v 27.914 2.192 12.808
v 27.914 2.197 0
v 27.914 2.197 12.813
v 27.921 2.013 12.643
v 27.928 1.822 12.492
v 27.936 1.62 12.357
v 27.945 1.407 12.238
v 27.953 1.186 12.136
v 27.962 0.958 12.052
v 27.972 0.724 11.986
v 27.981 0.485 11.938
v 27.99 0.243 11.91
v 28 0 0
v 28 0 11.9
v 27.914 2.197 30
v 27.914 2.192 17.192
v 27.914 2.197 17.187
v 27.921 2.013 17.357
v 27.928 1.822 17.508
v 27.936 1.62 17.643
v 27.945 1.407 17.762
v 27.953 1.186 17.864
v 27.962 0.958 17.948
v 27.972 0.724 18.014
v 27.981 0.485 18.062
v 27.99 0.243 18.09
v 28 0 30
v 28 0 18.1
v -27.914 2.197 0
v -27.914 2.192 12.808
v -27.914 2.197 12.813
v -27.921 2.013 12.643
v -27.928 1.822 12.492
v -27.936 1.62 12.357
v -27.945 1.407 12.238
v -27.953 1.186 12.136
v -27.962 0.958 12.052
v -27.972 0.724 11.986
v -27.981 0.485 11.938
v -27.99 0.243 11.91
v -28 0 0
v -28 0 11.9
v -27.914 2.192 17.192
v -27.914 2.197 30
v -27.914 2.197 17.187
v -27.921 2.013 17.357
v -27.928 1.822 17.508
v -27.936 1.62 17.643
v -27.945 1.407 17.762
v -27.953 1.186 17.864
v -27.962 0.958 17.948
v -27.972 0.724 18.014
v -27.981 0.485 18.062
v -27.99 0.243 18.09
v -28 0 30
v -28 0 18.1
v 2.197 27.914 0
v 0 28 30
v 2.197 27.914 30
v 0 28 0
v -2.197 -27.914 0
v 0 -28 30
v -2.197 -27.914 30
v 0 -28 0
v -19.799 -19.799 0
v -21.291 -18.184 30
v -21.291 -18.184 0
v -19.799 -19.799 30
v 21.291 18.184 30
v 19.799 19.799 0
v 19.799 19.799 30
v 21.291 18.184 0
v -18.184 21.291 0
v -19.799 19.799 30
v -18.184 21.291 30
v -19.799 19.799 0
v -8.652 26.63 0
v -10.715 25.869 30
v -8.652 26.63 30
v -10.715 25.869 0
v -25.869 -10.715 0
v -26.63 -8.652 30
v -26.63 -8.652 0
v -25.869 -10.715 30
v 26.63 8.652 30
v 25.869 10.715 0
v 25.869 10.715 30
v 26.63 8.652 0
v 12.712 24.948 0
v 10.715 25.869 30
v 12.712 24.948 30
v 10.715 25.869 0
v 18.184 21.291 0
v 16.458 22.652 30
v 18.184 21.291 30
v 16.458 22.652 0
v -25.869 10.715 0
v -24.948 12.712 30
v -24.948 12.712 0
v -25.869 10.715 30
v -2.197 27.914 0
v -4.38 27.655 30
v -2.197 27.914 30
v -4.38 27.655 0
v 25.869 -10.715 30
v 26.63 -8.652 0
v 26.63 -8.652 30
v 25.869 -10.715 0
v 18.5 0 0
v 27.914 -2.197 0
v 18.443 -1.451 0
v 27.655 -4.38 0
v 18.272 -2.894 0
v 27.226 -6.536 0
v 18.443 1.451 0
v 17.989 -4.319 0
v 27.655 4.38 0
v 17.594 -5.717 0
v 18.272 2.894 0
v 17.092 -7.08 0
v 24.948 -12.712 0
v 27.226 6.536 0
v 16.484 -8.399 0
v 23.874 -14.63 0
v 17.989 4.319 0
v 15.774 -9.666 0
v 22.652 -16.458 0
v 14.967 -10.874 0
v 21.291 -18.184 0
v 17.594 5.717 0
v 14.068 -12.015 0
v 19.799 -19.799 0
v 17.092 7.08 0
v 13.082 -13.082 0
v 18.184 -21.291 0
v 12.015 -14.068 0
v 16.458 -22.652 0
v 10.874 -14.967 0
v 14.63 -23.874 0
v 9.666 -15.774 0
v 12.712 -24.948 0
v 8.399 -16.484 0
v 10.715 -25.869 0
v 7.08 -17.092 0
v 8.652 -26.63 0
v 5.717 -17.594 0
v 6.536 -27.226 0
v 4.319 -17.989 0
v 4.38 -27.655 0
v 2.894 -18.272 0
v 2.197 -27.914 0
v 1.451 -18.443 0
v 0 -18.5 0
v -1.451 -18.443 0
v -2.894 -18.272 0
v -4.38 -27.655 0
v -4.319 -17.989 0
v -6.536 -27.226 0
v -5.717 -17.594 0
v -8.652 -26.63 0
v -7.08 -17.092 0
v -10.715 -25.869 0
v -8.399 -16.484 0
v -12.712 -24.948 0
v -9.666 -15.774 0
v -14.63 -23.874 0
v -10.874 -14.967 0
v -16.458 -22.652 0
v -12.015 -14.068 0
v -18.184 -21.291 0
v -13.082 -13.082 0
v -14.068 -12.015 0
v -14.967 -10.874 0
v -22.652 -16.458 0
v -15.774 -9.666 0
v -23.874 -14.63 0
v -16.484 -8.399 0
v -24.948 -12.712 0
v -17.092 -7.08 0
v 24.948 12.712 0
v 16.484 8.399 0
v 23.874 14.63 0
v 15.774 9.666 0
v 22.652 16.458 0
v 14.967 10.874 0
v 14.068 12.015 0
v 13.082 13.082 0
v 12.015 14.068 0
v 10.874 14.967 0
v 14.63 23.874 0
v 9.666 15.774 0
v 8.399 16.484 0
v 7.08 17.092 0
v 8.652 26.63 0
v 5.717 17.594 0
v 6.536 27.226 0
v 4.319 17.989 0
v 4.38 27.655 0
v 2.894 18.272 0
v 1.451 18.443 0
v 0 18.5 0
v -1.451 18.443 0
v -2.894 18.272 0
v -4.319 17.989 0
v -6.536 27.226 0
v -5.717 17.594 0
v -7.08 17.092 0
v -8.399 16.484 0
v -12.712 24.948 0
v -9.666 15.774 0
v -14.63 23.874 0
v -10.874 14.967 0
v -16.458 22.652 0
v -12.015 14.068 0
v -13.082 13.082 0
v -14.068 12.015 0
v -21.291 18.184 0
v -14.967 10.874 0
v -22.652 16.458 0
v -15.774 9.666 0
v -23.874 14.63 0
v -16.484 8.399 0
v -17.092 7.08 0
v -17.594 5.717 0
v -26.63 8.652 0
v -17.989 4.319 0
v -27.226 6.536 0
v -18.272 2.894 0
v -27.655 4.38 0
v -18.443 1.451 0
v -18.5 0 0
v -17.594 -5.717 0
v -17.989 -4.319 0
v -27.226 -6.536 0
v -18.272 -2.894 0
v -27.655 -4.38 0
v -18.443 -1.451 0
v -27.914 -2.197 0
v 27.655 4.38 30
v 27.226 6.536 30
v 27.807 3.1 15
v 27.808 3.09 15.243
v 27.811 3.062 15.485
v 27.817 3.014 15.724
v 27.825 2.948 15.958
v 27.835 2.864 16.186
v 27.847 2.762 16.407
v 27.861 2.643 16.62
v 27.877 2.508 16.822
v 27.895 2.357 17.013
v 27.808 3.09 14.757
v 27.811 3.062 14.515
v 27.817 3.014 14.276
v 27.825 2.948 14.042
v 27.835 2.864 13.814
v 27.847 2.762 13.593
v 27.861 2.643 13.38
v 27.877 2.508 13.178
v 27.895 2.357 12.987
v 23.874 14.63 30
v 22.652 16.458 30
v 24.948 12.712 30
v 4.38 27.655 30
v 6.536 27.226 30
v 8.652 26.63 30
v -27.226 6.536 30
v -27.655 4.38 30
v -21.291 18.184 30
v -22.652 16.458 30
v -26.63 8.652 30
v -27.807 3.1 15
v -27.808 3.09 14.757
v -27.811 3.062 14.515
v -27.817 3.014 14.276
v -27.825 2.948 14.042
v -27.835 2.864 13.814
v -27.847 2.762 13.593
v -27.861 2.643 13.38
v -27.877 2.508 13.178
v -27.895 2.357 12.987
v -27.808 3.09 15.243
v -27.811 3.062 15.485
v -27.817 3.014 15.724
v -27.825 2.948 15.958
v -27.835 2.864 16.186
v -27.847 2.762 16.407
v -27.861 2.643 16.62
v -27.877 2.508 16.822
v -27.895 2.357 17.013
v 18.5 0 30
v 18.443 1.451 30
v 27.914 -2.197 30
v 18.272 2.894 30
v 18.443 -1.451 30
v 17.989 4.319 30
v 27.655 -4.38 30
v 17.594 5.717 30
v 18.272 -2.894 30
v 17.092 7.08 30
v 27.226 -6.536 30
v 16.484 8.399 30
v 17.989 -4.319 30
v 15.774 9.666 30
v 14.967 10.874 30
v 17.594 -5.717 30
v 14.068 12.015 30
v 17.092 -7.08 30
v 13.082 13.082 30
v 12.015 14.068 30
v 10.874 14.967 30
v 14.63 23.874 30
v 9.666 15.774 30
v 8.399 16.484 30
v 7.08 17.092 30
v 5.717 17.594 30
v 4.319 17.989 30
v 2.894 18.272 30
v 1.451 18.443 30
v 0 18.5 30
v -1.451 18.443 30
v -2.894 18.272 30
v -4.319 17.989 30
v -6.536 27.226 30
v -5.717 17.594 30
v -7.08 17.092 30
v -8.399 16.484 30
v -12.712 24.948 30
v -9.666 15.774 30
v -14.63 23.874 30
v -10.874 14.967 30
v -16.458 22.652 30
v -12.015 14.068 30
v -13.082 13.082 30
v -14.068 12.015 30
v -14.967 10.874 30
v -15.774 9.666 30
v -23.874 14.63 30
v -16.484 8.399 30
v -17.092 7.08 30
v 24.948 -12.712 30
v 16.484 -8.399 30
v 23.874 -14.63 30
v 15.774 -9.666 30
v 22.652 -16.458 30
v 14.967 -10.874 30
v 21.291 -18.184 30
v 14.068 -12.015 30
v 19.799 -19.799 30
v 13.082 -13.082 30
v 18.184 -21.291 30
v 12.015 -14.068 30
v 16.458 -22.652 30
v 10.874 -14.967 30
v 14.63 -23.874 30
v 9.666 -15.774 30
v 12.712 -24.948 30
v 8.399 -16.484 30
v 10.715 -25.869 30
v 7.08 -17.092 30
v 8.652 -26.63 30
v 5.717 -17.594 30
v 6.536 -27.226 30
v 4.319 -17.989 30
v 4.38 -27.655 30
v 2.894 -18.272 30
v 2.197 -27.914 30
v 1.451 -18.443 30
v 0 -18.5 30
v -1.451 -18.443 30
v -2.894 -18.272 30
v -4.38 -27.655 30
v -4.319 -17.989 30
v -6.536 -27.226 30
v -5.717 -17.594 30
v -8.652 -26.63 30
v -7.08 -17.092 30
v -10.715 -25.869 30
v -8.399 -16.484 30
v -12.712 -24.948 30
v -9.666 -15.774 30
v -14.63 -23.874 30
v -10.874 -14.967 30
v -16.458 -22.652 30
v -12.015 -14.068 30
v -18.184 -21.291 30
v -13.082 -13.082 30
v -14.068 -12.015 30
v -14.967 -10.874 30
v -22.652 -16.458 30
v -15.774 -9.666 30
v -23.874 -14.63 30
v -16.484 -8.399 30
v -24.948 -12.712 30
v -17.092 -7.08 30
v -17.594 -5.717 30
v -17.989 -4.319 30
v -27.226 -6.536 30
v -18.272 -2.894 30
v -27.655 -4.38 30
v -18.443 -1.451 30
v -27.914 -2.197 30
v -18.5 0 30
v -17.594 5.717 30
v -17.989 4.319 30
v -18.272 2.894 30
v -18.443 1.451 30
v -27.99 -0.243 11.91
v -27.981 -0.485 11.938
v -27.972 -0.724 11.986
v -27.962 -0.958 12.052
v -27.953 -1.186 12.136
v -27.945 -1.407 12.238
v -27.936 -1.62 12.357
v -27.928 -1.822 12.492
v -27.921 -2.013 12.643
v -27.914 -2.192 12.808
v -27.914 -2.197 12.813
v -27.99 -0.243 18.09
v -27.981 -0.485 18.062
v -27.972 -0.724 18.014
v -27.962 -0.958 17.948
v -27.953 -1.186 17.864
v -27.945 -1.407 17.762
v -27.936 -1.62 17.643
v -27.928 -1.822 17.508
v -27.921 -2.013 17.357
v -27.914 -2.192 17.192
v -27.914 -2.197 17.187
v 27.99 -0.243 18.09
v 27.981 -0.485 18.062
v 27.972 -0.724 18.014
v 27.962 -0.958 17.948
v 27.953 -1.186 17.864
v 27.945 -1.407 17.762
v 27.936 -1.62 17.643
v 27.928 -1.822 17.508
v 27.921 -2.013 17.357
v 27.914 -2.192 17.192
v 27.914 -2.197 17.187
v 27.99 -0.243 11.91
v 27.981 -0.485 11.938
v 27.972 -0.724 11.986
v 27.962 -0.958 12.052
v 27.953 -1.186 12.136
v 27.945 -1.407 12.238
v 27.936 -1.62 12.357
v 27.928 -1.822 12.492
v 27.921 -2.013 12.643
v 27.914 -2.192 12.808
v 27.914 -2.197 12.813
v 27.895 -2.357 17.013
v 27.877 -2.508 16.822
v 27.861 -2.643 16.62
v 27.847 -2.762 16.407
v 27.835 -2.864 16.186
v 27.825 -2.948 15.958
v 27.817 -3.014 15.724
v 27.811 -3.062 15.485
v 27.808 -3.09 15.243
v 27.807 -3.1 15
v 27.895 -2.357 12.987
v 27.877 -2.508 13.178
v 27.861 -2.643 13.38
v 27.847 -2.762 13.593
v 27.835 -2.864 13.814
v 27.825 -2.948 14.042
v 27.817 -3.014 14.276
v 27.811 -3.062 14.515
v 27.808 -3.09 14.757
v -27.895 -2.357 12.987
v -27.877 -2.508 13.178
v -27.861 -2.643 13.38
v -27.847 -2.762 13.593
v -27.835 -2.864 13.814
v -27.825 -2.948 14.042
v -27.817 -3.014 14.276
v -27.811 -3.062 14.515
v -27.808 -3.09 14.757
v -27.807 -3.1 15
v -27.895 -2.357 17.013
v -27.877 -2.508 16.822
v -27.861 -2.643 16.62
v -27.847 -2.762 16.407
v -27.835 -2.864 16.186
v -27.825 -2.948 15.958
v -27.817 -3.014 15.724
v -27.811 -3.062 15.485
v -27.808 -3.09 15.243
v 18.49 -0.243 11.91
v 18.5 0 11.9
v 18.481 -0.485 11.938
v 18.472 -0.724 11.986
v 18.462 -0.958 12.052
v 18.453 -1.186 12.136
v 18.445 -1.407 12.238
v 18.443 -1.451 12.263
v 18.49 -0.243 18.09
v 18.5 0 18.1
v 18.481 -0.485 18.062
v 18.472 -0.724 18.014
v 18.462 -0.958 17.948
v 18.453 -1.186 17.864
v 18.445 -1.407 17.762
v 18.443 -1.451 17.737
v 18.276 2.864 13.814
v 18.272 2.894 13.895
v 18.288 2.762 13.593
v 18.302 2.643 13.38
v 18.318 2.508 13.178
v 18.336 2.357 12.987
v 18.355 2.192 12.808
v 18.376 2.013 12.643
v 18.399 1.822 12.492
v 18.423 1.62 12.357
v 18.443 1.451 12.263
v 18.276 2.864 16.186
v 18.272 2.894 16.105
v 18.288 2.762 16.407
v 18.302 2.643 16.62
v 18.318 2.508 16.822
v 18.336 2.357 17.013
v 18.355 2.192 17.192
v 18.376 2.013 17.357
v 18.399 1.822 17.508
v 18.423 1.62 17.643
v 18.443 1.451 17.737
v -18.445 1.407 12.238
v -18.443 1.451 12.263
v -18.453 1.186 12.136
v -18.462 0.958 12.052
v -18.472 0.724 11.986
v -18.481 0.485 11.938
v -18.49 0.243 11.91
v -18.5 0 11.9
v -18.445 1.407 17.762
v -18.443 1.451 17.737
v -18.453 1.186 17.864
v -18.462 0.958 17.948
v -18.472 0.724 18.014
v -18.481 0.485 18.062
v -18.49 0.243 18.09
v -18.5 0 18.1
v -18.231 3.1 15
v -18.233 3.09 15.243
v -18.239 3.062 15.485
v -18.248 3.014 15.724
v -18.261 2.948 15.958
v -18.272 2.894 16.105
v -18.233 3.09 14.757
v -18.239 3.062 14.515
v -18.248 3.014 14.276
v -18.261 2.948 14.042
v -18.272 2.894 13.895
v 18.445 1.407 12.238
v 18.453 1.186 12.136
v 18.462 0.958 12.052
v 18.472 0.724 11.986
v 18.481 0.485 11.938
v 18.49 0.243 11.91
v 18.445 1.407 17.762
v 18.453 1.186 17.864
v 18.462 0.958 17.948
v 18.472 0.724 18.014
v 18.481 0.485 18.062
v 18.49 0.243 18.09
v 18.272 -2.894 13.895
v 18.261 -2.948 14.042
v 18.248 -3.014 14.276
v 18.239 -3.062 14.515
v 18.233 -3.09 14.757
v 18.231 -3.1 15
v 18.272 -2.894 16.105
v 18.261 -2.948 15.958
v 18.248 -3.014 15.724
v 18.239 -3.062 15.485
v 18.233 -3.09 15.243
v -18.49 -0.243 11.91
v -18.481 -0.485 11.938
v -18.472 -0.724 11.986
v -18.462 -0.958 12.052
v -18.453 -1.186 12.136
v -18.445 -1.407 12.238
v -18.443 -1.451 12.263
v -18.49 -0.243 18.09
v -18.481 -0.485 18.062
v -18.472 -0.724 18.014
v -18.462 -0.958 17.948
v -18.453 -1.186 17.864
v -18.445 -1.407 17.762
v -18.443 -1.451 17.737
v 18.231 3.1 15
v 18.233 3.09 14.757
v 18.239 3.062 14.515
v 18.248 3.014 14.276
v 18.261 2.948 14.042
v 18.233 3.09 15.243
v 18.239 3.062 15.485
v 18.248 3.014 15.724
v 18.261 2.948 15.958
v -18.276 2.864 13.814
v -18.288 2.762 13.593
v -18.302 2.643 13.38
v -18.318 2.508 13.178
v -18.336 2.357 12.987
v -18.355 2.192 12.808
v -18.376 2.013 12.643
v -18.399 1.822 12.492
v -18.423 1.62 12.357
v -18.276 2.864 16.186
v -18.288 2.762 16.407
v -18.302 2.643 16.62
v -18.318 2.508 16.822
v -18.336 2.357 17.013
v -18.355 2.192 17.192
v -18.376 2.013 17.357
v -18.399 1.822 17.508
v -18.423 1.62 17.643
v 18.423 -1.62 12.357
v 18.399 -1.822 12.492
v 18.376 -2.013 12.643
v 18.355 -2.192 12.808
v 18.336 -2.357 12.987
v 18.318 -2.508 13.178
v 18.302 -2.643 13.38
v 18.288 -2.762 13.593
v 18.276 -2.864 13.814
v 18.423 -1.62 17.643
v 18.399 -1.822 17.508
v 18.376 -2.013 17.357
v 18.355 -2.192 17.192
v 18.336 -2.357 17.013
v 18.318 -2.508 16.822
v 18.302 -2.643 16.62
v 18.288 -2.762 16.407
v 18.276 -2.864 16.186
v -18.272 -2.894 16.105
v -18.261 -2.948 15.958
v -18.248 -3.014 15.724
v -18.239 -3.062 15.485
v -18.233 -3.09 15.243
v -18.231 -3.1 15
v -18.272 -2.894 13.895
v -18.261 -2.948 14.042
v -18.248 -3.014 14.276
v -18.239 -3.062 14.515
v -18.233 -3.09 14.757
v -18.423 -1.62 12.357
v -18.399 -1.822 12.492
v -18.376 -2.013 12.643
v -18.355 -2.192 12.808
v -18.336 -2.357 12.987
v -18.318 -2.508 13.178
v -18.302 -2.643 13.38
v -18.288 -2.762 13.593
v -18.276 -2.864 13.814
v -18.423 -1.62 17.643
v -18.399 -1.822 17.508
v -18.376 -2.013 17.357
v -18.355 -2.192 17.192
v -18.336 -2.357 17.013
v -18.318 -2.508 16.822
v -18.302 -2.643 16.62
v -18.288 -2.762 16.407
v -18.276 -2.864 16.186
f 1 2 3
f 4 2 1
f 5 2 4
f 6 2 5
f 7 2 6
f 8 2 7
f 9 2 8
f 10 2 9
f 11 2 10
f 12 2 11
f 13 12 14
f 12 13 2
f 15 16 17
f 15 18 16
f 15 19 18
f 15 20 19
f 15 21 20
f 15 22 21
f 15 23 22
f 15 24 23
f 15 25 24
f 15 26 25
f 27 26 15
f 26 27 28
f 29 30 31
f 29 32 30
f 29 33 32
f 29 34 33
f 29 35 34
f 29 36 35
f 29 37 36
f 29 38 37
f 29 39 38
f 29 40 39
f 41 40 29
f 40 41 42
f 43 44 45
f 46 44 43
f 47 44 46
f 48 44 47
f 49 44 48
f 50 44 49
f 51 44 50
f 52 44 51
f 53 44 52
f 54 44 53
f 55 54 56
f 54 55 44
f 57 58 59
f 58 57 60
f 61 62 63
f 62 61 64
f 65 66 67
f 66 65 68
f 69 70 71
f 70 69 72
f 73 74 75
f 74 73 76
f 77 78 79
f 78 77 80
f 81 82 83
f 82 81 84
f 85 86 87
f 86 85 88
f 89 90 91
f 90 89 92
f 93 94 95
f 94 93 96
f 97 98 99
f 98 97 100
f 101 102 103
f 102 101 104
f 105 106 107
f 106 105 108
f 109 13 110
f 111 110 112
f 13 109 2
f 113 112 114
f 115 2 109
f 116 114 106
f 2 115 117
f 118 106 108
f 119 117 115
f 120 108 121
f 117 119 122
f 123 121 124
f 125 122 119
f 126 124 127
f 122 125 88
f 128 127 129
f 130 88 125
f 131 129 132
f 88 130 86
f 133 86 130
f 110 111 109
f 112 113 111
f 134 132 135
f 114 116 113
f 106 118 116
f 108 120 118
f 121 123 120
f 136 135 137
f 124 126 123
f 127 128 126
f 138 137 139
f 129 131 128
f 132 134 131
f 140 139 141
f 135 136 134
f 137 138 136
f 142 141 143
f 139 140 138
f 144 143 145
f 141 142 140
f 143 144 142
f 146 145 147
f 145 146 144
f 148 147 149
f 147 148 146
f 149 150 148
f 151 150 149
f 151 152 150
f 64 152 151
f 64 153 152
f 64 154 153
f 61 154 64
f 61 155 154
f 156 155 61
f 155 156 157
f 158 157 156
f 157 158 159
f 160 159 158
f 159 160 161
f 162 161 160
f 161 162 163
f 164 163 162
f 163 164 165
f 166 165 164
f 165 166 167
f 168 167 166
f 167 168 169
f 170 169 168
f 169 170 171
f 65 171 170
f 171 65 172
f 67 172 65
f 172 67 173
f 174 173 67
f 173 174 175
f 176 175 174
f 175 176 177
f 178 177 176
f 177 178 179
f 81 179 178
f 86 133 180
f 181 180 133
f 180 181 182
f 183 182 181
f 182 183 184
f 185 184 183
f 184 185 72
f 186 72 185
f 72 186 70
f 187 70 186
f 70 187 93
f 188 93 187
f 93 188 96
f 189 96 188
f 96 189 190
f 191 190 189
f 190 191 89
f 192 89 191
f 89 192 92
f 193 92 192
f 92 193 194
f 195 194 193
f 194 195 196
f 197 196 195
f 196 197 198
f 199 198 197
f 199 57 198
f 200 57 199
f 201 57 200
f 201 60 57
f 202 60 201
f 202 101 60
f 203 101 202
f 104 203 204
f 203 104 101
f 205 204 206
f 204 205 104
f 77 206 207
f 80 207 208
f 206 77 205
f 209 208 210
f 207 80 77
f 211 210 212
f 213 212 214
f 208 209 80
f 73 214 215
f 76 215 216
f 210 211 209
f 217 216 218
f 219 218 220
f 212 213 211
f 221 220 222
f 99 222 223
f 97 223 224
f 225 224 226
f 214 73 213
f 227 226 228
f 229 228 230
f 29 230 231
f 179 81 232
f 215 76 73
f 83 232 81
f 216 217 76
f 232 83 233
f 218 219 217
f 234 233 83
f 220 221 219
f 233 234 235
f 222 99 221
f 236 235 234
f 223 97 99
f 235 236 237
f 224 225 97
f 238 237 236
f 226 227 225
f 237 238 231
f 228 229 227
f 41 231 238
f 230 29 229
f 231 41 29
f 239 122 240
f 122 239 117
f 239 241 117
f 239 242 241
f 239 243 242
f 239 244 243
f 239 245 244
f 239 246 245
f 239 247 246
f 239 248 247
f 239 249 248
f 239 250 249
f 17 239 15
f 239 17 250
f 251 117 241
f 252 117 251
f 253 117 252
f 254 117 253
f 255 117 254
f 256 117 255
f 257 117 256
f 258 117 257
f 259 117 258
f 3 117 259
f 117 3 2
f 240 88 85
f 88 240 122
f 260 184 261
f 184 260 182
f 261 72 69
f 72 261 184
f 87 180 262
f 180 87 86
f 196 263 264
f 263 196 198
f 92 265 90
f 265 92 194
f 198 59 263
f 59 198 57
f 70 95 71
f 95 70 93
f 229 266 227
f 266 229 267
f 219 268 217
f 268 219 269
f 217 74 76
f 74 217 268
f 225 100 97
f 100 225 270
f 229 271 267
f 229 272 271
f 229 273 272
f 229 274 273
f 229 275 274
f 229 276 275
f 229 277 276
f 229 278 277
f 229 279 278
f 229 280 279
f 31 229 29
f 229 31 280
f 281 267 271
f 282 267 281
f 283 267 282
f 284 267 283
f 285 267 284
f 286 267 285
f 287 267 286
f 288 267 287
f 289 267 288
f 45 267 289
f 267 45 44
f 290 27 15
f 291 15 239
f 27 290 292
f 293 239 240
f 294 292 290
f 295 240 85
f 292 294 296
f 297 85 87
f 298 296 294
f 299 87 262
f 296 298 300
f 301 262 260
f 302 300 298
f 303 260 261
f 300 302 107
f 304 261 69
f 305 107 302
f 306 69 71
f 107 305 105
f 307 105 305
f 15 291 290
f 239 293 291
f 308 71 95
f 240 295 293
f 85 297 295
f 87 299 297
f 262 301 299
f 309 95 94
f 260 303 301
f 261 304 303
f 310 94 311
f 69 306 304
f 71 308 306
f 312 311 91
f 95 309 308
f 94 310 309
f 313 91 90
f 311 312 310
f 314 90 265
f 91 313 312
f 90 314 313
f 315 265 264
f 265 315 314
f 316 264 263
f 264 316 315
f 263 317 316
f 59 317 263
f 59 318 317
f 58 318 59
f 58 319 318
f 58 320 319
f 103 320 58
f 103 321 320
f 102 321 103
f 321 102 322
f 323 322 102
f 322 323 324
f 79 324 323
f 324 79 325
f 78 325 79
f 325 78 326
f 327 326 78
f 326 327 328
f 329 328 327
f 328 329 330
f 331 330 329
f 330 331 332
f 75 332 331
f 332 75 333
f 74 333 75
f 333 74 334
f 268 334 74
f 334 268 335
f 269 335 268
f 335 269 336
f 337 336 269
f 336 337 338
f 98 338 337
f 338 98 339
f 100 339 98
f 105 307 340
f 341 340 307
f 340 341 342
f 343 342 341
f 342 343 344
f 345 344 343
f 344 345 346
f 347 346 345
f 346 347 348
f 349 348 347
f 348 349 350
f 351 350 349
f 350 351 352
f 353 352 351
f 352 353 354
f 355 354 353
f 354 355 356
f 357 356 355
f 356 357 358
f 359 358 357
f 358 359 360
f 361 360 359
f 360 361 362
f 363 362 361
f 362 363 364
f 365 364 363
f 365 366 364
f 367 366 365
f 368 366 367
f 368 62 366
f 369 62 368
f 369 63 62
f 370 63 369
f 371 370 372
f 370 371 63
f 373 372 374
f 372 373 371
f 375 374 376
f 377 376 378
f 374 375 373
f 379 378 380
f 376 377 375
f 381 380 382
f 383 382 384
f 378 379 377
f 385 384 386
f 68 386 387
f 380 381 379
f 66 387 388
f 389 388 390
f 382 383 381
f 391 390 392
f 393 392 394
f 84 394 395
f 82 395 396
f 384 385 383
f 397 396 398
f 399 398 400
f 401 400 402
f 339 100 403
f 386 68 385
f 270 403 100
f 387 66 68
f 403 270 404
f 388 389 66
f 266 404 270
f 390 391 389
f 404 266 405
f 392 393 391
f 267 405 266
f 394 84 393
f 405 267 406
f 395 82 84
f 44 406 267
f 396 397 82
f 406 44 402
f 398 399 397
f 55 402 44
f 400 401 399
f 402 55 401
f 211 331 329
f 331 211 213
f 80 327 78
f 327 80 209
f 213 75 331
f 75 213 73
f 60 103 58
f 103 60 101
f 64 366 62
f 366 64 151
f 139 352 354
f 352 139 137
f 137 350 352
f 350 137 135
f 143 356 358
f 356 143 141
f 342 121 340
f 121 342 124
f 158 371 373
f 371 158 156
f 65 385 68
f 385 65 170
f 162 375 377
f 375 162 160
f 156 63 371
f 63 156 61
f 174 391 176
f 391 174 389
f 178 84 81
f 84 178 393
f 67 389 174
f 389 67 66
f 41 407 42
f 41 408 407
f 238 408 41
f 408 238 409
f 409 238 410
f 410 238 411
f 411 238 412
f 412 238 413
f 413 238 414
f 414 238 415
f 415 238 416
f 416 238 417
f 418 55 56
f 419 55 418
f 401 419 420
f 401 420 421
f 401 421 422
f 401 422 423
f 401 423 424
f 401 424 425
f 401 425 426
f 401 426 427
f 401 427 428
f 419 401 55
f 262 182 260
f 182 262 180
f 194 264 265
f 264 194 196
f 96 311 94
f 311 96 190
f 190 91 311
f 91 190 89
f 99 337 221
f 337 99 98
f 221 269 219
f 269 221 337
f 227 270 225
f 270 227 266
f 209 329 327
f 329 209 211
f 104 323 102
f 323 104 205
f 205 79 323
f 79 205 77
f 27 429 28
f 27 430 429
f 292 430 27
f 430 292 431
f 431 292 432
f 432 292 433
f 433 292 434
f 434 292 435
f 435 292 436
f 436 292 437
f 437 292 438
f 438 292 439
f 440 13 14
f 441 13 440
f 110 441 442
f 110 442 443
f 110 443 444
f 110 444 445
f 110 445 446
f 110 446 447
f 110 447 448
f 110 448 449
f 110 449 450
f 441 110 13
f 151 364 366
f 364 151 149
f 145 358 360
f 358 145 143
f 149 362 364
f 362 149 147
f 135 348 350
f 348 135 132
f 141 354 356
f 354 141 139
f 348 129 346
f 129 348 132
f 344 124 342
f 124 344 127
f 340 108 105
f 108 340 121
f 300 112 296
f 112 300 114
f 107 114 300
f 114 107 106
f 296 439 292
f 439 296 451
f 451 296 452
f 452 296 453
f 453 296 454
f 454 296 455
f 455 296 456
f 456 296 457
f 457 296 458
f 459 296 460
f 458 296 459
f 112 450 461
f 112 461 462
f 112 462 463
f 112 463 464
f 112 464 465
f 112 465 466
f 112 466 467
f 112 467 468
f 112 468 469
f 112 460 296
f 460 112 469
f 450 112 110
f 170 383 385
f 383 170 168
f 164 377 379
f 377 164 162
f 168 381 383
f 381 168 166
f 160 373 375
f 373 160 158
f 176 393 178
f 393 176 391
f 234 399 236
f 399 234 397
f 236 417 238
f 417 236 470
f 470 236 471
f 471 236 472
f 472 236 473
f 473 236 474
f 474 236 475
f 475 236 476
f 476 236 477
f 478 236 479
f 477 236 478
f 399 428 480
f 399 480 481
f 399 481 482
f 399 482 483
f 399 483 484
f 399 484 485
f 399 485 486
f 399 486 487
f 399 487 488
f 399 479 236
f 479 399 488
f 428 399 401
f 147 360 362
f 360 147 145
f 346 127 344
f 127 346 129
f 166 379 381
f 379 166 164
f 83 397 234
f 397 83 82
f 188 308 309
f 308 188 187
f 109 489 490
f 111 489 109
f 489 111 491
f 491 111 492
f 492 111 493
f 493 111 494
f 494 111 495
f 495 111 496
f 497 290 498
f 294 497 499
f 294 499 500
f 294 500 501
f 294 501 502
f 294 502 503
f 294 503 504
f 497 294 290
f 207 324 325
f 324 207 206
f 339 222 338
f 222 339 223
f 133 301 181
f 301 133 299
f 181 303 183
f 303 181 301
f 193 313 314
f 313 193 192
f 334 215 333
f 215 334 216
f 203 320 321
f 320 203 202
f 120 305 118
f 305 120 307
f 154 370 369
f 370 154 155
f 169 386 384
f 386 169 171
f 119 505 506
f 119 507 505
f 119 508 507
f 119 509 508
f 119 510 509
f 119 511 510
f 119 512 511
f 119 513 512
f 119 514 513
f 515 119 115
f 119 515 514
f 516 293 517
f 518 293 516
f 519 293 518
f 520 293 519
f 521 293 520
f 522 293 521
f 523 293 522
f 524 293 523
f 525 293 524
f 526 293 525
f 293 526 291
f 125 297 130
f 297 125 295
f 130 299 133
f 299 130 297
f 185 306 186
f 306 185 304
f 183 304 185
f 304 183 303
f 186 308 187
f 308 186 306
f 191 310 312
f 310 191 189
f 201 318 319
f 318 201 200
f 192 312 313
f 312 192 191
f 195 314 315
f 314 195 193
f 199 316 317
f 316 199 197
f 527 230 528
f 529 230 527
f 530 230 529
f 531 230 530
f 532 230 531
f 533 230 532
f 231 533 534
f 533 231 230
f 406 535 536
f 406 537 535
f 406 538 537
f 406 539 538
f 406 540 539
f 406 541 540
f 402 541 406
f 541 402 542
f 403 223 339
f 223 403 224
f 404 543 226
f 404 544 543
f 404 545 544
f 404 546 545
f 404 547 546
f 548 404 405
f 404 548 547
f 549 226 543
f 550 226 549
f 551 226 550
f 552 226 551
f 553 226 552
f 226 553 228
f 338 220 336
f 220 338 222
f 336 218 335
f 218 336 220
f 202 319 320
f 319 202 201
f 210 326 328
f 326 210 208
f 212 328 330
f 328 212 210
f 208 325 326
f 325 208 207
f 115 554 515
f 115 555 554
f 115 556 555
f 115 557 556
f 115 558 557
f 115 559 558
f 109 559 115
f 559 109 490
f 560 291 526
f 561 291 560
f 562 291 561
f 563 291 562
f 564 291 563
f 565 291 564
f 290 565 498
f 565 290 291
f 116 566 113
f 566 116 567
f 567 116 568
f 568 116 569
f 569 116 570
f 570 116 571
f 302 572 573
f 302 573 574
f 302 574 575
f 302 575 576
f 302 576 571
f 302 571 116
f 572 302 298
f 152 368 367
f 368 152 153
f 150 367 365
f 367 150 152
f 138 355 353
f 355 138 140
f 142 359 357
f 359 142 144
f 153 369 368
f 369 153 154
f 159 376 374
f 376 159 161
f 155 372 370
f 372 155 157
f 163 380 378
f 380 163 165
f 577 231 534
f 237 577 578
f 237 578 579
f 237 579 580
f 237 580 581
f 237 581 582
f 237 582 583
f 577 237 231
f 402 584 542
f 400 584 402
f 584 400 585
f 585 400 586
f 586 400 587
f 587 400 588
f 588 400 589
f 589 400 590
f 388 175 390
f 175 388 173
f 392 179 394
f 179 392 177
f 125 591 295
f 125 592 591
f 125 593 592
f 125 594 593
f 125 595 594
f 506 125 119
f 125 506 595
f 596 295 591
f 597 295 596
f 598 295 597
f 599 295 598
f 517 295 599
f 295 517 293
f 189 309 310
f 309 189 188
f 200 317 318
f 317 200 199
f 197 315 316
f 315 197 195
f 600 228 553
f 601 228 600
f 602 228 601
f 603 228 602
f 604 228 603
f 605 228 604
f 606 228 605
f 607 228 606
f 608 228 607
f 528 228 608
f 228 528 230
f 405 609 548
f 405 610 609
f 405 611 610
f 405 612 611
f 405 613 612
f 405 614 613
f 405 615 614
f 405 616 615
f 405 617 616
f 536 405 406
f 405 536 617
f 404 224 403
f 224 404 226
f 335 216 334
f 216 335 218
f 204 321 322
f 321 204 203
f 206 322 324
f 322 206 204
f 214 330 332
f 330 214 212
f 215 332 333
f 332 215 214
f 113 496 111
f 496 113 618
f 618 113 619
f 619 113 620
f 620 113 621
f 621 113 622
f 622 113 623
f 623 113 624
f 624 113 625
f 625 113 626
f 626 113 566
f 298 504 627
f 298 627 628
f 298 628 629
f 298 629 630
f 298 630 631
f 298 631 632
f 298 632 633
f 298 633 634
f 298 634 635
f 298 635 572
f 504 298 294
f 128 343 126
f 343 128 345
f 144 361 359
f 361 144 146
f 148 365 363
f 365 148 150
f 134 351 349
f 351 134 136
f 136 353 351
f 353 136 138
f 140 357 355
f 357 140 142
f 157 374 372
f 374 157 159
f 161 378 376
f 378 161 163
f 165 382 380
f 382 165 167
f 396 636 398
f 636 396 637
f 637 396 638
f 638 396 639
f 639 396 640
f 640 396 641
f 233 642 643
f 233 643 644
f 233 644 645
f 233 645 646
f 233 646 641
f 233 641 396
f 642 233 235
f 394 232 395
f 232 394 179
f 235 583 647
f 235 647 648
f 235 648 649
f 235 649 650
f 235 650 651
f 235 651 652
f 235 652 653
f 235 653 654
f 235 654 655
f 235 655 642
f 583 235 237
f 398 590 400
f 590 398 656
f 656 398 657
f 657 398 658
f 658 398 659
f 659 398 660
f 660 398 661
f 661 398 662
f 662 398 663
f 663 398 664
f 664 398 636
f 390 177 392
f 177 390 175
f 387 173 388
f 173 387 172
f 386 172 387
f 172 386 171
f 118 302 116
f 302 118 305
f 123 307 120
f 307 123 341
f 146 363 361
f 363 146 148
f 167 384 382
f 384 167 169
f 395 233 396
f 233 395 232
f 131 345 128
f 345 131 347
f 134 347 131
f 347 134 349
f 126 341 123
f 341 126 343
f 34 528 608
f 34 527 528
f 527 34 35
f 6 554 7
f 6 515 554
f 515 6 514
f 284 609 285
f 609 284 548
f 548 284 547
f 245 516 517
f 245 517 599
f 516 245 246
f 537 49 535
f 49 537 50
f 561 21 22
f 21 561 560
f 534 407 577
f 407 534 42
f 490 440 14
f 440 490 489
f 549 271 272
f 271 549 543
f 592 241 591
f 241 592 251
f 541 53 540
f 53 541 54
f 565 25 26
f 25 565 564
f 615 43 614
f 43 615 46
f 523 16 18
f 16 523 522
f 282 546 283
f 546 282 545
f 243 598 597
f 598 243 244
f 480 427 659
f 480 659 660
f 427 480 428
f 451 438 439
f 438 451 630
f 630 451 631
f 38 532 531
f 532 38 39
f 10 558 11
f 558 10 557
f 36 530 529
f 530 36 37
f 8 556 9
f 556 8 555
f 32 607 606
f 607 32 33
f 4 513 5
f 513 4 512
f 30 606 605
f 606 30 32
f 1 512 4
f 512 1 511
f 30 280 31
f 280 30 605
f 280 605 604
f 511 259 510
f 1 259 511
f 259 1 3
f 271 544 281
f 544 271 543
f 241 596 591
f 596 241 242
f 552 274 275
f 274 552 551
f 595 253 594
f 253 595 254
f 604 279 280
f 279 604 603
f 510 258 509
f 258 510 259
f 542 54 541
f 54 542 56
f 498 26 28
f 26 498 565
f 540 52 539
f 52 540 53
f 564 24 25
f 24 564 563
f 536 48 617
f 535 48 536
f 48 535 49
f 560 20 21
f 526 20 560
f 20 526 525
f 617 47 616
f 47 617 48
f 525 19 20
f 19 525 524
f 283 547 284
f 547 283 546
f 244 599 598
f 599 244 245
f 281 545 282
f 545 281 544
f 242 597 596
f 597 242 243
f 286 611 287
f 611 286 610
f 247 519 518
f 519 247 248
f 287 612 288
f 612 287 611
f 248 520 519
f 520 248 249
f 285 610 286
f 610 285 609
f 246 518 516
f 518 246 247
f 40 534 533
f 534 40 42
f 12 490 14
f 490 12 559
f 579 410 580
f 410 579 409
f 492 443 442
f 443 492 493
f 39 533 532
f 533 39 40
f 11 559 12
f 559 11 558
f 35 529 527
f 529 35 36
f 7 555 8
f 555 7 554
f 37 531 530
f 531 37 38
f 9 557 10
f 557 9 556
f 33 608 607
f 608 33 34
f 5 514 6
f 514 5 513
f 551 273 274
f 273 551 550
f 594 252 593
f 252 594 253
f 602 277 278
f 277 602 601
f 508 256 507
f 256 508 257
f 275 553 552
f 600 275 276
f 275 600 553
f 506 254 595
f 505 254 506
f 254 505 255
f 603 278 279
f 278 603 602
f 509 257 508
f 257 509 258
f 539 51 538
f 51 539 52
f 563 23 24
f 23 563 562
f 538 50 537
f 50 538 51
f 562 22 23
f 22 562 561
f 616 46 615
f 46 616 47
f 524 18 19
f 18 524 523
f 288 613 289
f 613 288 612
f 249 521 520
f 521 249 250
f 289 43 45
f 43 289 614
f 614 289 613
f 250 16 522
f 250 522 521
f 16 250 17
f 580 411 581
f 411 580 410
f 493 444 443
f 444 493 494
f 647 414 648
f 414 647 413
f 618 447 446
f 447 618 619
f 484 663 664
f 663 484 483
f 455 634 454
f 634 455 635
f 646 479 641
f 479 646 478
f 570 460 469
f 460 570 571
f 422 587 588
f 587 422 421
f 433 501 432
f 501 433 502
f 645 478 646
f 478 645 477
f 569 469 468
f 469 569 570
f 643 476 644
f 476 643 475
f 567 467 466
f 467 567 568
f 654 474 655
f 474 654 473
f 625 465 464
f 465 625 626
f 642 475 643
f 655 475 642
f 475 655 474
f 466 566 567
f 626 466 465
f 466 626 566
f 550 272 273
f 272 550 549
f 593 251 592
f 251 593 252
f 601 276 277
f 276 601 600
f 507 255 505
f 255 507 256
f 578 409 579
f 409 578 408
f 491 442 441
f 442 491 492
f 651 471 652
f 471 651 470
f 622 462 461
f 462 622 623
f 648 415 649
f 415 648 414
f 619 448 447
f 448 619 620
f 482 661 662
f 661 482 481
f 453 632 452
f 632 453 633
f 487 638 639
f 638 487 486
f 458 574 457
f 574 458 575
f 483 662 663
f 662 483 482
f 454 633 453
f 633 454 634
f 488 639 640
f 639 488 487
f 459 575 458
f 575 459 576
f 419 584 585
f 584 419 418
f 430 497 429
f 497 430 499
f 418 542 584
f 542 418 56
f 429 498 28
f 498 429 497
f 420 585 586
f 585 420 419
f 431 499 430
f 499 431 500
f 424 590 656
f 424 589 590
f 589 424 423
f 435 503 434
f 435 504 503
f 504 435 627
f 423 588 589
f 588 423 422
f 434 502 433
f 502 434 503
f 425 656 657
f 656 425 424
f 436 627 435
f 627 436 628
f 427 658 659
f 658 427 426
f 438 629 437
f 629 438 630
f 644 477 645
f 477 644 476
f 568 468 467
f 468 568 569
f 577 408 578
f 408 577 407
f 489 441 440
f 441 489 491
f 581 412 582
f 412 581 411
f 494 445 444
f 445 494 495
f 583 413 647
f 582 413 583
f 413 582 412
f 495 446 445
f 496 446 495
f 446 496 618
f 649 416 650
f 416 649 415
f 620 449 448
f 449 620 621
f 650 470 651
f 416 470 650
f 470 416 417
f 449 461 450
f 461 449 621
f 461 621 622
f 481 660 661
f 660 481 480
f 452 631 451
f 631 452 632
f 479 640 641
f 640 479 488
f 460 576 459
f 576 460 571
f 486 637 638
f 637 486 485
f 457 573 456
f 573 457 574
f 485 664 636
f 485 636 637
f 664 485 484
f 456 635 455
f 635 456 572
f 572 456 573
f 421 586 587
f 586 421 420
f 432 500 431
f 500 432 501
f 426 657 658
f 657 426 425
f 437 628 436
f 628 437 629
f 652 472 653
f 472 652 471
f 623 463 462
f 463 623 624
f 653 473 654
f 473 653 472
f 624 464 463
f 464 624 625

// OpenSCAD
/*File Info--------------------------------------------------------------------
File Name: ClampRing.scad
Project Name: OpenHardware LOOM - OHLOOM
License: Attribution-ShareAlike 4.0 International (CC BY-SA 4.0) 
Name: Jens Meisner
Date: 08/01/20
Desc:  This file is part of the OHLOOM Project. Original design by Oliver Slueter, who made all wooden parts without a CNC Router. https://wiki.opensourceecology.de/Open_Hardware-Webstuhl_%E2%80%93_OHLOOM
Usage: 
./OHLoom_Documentation/Assembly_Guide/AssemblyGuide.md
./OHLoom_Documentation/User_Guide/OHLOOM_UserGuide.md
/*
/*Modifications------------------------------------------------------------
New File Name: Enter name, if it has changed
Name: Enter name of author
Date: 
Desc: Describe changes of the original design
*/
//Please continue with any fur enter any further modification here
//--------------------------------------------------------------------------------

height=45;
gb_height=15;
cb_height=30;
cb_out=56;
cb_in=37;
gb_out=76;
hole=6.2;
freecad_export=false;

if(freecad_export)
{
    difference()
    {
        translate([0,0,gb_height])
        cylinder(cb_height,d=cb_out,center=true);        
        translate([0,0,height/2])
        cylinder(height,d=cb_in,center=true);
        translate([0,0,cb_height/2])
        rotate([0,90,0])
        cylinder(gb_out,d=hole,center=true);
    }
}
else
{
    difference()
    {
        translate([0,0,gb_height])
        cylinder(cb_height,d=cb_out,center=true,$fn=80);        
        translate([0,0,height/2])
        cylinder(height,d=cb_in,center=true,$fn=80);
        translate([0,0,cb_height/2])
        rotate([0,90,0])
        cylinder(gb_out,d=hole,center=true,$fn=80);
    }
}
